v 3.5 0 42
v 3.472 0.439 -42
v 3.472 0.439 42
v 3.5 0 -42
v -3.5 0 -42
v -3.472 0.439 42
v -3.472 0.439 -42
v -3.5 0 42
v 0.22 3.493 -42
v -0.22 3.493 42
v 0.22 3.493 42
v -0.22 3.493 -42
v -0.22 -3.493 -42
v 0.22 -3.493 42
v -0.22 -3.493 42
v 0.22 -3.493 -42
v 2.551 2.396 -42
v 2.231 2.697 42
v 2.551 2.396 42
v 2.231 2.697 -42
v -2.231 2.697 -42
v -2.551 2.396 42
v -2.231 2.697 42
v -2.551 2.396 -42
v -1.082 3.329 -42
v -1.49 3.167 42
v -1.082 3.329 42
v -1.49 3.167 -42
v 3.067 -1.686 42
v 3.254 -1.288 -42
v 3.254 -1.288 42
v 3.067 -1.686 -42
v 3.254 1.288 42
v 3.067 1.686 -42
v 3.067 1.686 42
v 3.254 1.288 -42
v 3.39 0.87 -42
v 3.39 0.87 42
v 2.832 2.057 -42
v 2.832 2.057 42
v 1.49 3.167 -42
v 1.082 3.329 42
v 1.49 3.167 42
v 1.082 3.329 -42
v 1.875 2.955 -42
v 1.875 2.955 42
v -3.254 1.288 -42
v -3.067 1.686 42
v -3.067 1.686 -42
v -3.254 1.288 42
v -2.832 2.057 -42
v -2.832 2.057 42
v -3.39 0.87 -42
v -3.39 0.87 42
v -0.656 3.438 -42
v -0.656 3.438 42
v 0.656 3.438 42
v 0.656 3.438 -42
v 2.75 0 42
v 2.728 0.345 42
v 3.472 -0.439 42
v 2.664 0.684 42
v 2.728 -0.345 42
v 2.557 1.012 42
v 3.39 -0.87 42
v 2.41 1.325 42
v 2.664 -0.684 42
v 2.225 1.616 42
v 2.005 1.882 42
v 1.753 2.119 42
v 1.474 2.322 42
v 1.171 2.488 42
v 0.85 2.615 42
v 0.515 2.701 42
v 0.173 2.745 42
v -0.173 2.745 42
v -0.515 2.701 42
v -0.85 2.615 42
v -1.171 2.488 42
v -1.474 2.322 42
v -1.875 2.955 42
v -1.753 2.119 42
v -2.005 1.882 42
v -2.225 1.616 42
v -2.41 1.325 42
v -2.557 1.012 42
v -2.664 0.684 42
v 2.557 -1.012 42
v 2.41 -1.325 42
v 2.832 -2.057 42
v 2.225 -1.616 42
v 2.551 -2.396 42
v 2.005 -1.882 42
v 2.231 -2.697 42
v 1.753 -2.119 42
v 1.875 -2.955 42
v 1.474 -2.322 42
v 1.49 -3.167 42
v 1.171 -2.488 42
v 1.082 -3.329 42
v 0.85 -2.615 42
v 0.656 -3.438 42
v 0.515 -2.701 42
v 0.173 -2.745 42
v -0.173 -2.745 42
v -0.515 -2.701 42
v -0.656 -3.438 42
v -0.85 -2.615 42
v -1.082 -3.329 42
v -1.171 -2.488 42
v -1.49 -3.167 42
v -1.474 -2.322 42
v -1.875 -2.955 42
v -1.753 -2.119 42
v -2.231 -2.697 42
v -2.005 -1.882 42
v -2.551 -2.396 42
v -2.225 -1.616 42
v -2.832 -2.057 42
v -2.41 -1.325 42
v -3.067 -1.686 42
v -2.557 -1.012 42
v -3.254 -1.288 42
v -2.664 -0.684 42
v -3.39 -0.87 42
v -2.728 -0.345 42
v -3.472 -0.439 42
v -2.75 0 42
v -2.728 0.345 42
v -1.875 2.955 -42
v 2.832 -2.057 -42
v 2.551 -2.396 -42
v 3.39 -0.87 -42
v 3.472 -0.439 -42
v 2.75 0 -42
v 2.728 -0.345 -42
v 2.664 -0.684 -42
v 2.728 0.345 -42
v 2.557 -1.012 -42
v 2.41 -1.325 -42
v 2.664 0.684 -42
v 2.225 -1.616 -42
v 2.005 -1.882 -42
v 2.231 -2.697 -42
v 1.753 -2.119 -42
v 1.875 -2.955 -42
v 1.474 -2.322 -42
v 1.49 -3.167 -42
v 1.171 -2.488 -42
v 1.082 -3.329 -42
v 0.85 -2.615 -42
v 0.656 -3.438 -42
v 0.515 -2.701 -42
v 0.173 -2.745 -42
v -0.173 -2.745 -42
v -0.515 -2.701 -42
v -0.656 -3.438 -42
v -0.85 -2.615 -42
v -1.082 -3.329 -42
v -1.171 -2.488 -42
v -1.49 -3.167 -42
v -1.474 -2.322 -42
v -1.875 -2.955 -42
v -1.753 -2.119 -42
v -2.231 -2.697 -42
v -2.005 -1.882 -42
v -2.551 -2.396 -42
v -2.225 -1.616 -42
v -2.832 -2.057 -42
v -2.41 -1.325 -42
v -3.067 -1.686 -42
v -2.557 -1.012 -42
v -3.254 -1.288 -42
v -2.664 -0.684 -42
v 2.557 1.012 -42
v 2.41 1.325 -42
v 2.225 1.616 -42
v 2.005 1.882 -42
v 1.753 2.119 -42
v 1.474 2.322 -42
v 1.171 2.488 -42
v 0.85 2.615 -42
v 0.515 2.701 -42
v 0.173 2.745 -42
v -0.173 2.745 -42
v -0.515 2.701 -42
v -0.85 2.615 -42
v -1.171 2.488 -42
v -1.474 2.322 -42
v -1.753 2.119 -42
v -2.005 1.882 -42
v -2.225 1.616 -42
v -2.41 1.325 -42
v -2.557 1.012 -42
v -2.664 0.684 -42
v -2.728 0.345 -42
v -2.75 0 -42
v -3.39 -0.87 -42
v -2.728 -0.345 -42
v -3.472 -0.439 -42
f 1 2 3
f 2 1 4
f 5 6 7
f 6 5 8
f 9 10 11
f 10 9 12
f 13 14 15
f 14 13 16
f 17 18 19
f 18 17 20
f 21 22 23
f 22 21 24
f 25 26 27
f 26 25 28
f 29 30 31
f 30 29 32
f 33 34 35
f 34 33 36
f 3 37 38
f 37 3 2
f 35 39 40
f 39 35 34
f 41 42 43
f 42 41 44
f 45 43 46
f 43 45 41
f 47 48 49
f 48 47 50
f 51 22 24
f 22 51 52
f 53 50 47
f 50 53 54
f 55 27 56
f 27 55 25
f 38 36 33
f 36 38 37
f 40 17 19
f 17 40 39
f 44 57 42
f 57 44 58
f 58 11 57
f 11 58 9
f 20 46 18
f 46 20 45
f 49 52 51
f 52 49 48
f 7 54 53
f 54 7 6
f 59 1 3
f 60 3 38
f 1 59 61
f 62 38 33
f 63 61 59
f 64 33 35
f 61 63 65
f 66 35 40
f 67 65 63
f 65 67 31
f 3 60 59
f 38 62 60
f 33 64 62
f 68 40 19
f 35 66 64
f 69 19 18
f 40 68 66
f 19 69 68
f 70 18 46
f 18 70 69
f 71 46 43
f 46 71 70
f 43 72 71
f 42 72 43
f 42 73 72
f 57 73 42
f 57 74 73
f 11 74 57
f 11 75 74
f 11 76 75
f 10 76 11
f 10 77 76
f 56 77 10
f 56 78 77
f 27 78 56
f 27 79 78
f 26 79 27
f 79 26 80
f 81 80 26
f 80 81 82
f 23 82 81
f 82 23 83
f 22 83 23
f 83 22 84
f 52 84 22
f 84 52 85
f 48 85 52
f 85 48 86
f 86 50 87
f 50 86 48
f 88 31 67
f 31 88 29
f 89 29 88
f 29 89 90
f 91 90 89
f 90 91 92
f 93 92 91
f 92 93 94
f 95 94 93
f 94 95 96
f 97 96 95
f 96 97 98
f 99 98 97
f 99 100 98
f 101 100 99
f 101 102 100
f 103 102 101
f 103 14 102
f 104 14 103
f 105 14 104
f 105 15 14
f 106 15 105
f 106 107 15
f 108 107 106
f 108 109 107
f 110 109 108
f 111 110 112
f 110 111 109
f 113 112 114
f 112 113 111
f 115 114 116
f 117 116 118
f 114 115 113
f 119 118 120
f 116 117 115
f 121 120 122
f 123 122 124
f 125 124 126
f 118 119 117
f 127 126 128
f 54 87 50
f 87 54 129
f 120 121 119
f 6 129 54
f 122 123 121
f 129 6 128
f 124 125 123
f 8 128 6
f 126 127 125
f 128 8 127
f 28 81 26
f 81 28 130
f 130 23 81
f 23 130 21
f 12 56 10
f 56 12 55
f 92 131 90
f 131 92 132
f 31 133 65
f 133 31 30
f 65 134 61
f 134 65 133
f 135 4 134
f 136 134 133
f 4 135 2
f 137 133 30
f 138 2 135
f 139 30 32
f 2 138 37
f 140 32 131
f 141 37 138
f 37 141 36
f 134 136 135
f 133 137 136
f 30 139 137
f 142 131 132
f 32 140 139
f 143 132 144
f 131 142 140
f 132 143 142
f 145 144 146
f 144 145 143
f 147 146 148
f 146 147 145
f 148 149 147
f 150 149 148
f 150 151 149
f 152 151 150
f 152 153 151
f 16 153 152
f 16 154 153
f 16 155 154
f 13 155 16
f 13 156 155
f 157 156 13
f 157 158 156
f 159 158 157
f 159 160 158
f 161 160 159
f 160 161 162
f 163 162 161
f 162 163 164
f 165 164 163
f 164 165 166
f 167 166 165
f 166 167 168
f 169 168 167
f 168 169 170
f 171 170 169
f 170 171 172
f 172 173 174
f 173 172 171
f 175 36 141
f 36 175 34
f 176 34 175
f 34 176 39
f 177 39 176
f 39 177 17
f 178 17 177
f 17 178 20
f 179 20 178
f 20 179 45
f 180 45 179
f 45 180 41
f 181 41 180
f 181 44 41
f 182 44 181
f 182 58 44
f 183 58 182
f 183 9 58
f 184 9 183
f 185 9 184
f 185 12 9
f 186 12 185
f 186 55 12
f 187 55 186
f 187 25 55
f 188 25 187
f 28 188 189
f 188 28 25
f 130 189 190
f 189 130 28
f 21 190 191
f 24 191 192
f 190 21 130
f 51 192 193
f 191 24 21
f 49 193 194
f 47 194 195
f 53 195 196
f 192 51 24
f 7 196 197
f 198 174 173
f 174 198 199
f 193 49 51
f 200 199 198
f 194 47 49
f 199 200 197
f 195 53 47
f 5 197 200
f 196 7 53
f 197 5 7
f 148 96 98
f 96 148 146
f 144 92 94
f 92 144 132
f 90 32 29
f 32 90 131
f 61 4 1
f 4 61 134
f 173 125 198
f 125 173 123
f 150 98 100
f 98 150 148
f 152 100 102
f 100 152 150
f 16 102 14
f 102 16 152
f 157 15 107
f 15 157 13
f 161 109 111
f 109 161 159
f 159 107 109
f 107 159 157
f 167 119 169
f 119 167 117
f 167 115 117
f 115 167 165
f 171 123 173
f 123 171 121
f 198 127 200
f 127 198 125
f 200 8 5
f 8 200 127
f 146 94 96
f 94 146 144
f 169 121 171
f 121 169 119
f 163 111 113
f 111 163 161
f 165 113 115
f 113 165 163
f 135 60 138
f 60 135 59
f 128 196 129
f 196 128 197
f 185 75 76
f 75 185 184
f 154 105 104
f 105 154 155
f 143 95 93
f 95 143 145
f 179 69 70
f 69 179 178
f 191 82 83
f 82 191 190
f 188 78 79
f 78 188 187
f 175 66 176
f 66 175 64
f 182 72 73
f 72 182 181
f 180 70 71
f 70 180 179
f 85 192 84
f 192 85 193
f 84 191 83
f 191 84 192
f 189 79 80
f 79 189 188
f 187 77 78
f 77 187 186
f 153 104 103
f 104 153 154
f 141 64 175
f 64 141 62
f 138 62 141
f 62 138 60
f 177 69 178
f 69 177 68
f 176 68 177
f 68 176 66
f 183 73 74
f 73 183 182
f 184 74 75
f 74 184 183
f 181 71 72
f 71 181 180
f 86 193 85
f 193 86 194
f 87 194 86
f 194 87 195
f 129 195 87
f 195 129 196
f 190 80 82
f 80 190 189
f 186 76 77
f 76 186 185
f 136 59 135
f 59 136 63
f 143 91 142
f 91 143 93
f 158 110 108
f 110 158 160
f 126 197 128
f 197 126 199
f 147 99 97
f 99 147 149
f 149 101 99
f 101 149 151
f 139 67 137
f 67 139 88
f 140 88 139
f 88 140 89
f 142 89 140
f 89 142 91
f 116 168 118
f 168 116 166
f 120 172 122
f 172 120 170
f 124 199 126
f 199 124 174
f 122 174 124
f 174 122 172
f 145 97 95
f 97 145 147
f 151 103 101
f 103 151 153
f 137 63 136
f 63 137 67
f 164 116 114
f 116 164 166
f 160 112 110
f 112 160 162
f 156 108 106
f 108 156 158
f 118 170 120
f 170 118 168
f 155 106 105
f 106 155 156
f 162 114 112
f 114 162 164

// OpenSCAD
$fn = 50;


difference() {
	union() {
		translate(v = [0, 0, -42.0000000000]) {
			cylinder(h = 84, r = 3.5000000000);
		}
	}
	union() {
		translate(v = [0, 0, -100.0000000000]) {
			cylinder(h = 200, r = 2.7500000000);
		}
	}
}
